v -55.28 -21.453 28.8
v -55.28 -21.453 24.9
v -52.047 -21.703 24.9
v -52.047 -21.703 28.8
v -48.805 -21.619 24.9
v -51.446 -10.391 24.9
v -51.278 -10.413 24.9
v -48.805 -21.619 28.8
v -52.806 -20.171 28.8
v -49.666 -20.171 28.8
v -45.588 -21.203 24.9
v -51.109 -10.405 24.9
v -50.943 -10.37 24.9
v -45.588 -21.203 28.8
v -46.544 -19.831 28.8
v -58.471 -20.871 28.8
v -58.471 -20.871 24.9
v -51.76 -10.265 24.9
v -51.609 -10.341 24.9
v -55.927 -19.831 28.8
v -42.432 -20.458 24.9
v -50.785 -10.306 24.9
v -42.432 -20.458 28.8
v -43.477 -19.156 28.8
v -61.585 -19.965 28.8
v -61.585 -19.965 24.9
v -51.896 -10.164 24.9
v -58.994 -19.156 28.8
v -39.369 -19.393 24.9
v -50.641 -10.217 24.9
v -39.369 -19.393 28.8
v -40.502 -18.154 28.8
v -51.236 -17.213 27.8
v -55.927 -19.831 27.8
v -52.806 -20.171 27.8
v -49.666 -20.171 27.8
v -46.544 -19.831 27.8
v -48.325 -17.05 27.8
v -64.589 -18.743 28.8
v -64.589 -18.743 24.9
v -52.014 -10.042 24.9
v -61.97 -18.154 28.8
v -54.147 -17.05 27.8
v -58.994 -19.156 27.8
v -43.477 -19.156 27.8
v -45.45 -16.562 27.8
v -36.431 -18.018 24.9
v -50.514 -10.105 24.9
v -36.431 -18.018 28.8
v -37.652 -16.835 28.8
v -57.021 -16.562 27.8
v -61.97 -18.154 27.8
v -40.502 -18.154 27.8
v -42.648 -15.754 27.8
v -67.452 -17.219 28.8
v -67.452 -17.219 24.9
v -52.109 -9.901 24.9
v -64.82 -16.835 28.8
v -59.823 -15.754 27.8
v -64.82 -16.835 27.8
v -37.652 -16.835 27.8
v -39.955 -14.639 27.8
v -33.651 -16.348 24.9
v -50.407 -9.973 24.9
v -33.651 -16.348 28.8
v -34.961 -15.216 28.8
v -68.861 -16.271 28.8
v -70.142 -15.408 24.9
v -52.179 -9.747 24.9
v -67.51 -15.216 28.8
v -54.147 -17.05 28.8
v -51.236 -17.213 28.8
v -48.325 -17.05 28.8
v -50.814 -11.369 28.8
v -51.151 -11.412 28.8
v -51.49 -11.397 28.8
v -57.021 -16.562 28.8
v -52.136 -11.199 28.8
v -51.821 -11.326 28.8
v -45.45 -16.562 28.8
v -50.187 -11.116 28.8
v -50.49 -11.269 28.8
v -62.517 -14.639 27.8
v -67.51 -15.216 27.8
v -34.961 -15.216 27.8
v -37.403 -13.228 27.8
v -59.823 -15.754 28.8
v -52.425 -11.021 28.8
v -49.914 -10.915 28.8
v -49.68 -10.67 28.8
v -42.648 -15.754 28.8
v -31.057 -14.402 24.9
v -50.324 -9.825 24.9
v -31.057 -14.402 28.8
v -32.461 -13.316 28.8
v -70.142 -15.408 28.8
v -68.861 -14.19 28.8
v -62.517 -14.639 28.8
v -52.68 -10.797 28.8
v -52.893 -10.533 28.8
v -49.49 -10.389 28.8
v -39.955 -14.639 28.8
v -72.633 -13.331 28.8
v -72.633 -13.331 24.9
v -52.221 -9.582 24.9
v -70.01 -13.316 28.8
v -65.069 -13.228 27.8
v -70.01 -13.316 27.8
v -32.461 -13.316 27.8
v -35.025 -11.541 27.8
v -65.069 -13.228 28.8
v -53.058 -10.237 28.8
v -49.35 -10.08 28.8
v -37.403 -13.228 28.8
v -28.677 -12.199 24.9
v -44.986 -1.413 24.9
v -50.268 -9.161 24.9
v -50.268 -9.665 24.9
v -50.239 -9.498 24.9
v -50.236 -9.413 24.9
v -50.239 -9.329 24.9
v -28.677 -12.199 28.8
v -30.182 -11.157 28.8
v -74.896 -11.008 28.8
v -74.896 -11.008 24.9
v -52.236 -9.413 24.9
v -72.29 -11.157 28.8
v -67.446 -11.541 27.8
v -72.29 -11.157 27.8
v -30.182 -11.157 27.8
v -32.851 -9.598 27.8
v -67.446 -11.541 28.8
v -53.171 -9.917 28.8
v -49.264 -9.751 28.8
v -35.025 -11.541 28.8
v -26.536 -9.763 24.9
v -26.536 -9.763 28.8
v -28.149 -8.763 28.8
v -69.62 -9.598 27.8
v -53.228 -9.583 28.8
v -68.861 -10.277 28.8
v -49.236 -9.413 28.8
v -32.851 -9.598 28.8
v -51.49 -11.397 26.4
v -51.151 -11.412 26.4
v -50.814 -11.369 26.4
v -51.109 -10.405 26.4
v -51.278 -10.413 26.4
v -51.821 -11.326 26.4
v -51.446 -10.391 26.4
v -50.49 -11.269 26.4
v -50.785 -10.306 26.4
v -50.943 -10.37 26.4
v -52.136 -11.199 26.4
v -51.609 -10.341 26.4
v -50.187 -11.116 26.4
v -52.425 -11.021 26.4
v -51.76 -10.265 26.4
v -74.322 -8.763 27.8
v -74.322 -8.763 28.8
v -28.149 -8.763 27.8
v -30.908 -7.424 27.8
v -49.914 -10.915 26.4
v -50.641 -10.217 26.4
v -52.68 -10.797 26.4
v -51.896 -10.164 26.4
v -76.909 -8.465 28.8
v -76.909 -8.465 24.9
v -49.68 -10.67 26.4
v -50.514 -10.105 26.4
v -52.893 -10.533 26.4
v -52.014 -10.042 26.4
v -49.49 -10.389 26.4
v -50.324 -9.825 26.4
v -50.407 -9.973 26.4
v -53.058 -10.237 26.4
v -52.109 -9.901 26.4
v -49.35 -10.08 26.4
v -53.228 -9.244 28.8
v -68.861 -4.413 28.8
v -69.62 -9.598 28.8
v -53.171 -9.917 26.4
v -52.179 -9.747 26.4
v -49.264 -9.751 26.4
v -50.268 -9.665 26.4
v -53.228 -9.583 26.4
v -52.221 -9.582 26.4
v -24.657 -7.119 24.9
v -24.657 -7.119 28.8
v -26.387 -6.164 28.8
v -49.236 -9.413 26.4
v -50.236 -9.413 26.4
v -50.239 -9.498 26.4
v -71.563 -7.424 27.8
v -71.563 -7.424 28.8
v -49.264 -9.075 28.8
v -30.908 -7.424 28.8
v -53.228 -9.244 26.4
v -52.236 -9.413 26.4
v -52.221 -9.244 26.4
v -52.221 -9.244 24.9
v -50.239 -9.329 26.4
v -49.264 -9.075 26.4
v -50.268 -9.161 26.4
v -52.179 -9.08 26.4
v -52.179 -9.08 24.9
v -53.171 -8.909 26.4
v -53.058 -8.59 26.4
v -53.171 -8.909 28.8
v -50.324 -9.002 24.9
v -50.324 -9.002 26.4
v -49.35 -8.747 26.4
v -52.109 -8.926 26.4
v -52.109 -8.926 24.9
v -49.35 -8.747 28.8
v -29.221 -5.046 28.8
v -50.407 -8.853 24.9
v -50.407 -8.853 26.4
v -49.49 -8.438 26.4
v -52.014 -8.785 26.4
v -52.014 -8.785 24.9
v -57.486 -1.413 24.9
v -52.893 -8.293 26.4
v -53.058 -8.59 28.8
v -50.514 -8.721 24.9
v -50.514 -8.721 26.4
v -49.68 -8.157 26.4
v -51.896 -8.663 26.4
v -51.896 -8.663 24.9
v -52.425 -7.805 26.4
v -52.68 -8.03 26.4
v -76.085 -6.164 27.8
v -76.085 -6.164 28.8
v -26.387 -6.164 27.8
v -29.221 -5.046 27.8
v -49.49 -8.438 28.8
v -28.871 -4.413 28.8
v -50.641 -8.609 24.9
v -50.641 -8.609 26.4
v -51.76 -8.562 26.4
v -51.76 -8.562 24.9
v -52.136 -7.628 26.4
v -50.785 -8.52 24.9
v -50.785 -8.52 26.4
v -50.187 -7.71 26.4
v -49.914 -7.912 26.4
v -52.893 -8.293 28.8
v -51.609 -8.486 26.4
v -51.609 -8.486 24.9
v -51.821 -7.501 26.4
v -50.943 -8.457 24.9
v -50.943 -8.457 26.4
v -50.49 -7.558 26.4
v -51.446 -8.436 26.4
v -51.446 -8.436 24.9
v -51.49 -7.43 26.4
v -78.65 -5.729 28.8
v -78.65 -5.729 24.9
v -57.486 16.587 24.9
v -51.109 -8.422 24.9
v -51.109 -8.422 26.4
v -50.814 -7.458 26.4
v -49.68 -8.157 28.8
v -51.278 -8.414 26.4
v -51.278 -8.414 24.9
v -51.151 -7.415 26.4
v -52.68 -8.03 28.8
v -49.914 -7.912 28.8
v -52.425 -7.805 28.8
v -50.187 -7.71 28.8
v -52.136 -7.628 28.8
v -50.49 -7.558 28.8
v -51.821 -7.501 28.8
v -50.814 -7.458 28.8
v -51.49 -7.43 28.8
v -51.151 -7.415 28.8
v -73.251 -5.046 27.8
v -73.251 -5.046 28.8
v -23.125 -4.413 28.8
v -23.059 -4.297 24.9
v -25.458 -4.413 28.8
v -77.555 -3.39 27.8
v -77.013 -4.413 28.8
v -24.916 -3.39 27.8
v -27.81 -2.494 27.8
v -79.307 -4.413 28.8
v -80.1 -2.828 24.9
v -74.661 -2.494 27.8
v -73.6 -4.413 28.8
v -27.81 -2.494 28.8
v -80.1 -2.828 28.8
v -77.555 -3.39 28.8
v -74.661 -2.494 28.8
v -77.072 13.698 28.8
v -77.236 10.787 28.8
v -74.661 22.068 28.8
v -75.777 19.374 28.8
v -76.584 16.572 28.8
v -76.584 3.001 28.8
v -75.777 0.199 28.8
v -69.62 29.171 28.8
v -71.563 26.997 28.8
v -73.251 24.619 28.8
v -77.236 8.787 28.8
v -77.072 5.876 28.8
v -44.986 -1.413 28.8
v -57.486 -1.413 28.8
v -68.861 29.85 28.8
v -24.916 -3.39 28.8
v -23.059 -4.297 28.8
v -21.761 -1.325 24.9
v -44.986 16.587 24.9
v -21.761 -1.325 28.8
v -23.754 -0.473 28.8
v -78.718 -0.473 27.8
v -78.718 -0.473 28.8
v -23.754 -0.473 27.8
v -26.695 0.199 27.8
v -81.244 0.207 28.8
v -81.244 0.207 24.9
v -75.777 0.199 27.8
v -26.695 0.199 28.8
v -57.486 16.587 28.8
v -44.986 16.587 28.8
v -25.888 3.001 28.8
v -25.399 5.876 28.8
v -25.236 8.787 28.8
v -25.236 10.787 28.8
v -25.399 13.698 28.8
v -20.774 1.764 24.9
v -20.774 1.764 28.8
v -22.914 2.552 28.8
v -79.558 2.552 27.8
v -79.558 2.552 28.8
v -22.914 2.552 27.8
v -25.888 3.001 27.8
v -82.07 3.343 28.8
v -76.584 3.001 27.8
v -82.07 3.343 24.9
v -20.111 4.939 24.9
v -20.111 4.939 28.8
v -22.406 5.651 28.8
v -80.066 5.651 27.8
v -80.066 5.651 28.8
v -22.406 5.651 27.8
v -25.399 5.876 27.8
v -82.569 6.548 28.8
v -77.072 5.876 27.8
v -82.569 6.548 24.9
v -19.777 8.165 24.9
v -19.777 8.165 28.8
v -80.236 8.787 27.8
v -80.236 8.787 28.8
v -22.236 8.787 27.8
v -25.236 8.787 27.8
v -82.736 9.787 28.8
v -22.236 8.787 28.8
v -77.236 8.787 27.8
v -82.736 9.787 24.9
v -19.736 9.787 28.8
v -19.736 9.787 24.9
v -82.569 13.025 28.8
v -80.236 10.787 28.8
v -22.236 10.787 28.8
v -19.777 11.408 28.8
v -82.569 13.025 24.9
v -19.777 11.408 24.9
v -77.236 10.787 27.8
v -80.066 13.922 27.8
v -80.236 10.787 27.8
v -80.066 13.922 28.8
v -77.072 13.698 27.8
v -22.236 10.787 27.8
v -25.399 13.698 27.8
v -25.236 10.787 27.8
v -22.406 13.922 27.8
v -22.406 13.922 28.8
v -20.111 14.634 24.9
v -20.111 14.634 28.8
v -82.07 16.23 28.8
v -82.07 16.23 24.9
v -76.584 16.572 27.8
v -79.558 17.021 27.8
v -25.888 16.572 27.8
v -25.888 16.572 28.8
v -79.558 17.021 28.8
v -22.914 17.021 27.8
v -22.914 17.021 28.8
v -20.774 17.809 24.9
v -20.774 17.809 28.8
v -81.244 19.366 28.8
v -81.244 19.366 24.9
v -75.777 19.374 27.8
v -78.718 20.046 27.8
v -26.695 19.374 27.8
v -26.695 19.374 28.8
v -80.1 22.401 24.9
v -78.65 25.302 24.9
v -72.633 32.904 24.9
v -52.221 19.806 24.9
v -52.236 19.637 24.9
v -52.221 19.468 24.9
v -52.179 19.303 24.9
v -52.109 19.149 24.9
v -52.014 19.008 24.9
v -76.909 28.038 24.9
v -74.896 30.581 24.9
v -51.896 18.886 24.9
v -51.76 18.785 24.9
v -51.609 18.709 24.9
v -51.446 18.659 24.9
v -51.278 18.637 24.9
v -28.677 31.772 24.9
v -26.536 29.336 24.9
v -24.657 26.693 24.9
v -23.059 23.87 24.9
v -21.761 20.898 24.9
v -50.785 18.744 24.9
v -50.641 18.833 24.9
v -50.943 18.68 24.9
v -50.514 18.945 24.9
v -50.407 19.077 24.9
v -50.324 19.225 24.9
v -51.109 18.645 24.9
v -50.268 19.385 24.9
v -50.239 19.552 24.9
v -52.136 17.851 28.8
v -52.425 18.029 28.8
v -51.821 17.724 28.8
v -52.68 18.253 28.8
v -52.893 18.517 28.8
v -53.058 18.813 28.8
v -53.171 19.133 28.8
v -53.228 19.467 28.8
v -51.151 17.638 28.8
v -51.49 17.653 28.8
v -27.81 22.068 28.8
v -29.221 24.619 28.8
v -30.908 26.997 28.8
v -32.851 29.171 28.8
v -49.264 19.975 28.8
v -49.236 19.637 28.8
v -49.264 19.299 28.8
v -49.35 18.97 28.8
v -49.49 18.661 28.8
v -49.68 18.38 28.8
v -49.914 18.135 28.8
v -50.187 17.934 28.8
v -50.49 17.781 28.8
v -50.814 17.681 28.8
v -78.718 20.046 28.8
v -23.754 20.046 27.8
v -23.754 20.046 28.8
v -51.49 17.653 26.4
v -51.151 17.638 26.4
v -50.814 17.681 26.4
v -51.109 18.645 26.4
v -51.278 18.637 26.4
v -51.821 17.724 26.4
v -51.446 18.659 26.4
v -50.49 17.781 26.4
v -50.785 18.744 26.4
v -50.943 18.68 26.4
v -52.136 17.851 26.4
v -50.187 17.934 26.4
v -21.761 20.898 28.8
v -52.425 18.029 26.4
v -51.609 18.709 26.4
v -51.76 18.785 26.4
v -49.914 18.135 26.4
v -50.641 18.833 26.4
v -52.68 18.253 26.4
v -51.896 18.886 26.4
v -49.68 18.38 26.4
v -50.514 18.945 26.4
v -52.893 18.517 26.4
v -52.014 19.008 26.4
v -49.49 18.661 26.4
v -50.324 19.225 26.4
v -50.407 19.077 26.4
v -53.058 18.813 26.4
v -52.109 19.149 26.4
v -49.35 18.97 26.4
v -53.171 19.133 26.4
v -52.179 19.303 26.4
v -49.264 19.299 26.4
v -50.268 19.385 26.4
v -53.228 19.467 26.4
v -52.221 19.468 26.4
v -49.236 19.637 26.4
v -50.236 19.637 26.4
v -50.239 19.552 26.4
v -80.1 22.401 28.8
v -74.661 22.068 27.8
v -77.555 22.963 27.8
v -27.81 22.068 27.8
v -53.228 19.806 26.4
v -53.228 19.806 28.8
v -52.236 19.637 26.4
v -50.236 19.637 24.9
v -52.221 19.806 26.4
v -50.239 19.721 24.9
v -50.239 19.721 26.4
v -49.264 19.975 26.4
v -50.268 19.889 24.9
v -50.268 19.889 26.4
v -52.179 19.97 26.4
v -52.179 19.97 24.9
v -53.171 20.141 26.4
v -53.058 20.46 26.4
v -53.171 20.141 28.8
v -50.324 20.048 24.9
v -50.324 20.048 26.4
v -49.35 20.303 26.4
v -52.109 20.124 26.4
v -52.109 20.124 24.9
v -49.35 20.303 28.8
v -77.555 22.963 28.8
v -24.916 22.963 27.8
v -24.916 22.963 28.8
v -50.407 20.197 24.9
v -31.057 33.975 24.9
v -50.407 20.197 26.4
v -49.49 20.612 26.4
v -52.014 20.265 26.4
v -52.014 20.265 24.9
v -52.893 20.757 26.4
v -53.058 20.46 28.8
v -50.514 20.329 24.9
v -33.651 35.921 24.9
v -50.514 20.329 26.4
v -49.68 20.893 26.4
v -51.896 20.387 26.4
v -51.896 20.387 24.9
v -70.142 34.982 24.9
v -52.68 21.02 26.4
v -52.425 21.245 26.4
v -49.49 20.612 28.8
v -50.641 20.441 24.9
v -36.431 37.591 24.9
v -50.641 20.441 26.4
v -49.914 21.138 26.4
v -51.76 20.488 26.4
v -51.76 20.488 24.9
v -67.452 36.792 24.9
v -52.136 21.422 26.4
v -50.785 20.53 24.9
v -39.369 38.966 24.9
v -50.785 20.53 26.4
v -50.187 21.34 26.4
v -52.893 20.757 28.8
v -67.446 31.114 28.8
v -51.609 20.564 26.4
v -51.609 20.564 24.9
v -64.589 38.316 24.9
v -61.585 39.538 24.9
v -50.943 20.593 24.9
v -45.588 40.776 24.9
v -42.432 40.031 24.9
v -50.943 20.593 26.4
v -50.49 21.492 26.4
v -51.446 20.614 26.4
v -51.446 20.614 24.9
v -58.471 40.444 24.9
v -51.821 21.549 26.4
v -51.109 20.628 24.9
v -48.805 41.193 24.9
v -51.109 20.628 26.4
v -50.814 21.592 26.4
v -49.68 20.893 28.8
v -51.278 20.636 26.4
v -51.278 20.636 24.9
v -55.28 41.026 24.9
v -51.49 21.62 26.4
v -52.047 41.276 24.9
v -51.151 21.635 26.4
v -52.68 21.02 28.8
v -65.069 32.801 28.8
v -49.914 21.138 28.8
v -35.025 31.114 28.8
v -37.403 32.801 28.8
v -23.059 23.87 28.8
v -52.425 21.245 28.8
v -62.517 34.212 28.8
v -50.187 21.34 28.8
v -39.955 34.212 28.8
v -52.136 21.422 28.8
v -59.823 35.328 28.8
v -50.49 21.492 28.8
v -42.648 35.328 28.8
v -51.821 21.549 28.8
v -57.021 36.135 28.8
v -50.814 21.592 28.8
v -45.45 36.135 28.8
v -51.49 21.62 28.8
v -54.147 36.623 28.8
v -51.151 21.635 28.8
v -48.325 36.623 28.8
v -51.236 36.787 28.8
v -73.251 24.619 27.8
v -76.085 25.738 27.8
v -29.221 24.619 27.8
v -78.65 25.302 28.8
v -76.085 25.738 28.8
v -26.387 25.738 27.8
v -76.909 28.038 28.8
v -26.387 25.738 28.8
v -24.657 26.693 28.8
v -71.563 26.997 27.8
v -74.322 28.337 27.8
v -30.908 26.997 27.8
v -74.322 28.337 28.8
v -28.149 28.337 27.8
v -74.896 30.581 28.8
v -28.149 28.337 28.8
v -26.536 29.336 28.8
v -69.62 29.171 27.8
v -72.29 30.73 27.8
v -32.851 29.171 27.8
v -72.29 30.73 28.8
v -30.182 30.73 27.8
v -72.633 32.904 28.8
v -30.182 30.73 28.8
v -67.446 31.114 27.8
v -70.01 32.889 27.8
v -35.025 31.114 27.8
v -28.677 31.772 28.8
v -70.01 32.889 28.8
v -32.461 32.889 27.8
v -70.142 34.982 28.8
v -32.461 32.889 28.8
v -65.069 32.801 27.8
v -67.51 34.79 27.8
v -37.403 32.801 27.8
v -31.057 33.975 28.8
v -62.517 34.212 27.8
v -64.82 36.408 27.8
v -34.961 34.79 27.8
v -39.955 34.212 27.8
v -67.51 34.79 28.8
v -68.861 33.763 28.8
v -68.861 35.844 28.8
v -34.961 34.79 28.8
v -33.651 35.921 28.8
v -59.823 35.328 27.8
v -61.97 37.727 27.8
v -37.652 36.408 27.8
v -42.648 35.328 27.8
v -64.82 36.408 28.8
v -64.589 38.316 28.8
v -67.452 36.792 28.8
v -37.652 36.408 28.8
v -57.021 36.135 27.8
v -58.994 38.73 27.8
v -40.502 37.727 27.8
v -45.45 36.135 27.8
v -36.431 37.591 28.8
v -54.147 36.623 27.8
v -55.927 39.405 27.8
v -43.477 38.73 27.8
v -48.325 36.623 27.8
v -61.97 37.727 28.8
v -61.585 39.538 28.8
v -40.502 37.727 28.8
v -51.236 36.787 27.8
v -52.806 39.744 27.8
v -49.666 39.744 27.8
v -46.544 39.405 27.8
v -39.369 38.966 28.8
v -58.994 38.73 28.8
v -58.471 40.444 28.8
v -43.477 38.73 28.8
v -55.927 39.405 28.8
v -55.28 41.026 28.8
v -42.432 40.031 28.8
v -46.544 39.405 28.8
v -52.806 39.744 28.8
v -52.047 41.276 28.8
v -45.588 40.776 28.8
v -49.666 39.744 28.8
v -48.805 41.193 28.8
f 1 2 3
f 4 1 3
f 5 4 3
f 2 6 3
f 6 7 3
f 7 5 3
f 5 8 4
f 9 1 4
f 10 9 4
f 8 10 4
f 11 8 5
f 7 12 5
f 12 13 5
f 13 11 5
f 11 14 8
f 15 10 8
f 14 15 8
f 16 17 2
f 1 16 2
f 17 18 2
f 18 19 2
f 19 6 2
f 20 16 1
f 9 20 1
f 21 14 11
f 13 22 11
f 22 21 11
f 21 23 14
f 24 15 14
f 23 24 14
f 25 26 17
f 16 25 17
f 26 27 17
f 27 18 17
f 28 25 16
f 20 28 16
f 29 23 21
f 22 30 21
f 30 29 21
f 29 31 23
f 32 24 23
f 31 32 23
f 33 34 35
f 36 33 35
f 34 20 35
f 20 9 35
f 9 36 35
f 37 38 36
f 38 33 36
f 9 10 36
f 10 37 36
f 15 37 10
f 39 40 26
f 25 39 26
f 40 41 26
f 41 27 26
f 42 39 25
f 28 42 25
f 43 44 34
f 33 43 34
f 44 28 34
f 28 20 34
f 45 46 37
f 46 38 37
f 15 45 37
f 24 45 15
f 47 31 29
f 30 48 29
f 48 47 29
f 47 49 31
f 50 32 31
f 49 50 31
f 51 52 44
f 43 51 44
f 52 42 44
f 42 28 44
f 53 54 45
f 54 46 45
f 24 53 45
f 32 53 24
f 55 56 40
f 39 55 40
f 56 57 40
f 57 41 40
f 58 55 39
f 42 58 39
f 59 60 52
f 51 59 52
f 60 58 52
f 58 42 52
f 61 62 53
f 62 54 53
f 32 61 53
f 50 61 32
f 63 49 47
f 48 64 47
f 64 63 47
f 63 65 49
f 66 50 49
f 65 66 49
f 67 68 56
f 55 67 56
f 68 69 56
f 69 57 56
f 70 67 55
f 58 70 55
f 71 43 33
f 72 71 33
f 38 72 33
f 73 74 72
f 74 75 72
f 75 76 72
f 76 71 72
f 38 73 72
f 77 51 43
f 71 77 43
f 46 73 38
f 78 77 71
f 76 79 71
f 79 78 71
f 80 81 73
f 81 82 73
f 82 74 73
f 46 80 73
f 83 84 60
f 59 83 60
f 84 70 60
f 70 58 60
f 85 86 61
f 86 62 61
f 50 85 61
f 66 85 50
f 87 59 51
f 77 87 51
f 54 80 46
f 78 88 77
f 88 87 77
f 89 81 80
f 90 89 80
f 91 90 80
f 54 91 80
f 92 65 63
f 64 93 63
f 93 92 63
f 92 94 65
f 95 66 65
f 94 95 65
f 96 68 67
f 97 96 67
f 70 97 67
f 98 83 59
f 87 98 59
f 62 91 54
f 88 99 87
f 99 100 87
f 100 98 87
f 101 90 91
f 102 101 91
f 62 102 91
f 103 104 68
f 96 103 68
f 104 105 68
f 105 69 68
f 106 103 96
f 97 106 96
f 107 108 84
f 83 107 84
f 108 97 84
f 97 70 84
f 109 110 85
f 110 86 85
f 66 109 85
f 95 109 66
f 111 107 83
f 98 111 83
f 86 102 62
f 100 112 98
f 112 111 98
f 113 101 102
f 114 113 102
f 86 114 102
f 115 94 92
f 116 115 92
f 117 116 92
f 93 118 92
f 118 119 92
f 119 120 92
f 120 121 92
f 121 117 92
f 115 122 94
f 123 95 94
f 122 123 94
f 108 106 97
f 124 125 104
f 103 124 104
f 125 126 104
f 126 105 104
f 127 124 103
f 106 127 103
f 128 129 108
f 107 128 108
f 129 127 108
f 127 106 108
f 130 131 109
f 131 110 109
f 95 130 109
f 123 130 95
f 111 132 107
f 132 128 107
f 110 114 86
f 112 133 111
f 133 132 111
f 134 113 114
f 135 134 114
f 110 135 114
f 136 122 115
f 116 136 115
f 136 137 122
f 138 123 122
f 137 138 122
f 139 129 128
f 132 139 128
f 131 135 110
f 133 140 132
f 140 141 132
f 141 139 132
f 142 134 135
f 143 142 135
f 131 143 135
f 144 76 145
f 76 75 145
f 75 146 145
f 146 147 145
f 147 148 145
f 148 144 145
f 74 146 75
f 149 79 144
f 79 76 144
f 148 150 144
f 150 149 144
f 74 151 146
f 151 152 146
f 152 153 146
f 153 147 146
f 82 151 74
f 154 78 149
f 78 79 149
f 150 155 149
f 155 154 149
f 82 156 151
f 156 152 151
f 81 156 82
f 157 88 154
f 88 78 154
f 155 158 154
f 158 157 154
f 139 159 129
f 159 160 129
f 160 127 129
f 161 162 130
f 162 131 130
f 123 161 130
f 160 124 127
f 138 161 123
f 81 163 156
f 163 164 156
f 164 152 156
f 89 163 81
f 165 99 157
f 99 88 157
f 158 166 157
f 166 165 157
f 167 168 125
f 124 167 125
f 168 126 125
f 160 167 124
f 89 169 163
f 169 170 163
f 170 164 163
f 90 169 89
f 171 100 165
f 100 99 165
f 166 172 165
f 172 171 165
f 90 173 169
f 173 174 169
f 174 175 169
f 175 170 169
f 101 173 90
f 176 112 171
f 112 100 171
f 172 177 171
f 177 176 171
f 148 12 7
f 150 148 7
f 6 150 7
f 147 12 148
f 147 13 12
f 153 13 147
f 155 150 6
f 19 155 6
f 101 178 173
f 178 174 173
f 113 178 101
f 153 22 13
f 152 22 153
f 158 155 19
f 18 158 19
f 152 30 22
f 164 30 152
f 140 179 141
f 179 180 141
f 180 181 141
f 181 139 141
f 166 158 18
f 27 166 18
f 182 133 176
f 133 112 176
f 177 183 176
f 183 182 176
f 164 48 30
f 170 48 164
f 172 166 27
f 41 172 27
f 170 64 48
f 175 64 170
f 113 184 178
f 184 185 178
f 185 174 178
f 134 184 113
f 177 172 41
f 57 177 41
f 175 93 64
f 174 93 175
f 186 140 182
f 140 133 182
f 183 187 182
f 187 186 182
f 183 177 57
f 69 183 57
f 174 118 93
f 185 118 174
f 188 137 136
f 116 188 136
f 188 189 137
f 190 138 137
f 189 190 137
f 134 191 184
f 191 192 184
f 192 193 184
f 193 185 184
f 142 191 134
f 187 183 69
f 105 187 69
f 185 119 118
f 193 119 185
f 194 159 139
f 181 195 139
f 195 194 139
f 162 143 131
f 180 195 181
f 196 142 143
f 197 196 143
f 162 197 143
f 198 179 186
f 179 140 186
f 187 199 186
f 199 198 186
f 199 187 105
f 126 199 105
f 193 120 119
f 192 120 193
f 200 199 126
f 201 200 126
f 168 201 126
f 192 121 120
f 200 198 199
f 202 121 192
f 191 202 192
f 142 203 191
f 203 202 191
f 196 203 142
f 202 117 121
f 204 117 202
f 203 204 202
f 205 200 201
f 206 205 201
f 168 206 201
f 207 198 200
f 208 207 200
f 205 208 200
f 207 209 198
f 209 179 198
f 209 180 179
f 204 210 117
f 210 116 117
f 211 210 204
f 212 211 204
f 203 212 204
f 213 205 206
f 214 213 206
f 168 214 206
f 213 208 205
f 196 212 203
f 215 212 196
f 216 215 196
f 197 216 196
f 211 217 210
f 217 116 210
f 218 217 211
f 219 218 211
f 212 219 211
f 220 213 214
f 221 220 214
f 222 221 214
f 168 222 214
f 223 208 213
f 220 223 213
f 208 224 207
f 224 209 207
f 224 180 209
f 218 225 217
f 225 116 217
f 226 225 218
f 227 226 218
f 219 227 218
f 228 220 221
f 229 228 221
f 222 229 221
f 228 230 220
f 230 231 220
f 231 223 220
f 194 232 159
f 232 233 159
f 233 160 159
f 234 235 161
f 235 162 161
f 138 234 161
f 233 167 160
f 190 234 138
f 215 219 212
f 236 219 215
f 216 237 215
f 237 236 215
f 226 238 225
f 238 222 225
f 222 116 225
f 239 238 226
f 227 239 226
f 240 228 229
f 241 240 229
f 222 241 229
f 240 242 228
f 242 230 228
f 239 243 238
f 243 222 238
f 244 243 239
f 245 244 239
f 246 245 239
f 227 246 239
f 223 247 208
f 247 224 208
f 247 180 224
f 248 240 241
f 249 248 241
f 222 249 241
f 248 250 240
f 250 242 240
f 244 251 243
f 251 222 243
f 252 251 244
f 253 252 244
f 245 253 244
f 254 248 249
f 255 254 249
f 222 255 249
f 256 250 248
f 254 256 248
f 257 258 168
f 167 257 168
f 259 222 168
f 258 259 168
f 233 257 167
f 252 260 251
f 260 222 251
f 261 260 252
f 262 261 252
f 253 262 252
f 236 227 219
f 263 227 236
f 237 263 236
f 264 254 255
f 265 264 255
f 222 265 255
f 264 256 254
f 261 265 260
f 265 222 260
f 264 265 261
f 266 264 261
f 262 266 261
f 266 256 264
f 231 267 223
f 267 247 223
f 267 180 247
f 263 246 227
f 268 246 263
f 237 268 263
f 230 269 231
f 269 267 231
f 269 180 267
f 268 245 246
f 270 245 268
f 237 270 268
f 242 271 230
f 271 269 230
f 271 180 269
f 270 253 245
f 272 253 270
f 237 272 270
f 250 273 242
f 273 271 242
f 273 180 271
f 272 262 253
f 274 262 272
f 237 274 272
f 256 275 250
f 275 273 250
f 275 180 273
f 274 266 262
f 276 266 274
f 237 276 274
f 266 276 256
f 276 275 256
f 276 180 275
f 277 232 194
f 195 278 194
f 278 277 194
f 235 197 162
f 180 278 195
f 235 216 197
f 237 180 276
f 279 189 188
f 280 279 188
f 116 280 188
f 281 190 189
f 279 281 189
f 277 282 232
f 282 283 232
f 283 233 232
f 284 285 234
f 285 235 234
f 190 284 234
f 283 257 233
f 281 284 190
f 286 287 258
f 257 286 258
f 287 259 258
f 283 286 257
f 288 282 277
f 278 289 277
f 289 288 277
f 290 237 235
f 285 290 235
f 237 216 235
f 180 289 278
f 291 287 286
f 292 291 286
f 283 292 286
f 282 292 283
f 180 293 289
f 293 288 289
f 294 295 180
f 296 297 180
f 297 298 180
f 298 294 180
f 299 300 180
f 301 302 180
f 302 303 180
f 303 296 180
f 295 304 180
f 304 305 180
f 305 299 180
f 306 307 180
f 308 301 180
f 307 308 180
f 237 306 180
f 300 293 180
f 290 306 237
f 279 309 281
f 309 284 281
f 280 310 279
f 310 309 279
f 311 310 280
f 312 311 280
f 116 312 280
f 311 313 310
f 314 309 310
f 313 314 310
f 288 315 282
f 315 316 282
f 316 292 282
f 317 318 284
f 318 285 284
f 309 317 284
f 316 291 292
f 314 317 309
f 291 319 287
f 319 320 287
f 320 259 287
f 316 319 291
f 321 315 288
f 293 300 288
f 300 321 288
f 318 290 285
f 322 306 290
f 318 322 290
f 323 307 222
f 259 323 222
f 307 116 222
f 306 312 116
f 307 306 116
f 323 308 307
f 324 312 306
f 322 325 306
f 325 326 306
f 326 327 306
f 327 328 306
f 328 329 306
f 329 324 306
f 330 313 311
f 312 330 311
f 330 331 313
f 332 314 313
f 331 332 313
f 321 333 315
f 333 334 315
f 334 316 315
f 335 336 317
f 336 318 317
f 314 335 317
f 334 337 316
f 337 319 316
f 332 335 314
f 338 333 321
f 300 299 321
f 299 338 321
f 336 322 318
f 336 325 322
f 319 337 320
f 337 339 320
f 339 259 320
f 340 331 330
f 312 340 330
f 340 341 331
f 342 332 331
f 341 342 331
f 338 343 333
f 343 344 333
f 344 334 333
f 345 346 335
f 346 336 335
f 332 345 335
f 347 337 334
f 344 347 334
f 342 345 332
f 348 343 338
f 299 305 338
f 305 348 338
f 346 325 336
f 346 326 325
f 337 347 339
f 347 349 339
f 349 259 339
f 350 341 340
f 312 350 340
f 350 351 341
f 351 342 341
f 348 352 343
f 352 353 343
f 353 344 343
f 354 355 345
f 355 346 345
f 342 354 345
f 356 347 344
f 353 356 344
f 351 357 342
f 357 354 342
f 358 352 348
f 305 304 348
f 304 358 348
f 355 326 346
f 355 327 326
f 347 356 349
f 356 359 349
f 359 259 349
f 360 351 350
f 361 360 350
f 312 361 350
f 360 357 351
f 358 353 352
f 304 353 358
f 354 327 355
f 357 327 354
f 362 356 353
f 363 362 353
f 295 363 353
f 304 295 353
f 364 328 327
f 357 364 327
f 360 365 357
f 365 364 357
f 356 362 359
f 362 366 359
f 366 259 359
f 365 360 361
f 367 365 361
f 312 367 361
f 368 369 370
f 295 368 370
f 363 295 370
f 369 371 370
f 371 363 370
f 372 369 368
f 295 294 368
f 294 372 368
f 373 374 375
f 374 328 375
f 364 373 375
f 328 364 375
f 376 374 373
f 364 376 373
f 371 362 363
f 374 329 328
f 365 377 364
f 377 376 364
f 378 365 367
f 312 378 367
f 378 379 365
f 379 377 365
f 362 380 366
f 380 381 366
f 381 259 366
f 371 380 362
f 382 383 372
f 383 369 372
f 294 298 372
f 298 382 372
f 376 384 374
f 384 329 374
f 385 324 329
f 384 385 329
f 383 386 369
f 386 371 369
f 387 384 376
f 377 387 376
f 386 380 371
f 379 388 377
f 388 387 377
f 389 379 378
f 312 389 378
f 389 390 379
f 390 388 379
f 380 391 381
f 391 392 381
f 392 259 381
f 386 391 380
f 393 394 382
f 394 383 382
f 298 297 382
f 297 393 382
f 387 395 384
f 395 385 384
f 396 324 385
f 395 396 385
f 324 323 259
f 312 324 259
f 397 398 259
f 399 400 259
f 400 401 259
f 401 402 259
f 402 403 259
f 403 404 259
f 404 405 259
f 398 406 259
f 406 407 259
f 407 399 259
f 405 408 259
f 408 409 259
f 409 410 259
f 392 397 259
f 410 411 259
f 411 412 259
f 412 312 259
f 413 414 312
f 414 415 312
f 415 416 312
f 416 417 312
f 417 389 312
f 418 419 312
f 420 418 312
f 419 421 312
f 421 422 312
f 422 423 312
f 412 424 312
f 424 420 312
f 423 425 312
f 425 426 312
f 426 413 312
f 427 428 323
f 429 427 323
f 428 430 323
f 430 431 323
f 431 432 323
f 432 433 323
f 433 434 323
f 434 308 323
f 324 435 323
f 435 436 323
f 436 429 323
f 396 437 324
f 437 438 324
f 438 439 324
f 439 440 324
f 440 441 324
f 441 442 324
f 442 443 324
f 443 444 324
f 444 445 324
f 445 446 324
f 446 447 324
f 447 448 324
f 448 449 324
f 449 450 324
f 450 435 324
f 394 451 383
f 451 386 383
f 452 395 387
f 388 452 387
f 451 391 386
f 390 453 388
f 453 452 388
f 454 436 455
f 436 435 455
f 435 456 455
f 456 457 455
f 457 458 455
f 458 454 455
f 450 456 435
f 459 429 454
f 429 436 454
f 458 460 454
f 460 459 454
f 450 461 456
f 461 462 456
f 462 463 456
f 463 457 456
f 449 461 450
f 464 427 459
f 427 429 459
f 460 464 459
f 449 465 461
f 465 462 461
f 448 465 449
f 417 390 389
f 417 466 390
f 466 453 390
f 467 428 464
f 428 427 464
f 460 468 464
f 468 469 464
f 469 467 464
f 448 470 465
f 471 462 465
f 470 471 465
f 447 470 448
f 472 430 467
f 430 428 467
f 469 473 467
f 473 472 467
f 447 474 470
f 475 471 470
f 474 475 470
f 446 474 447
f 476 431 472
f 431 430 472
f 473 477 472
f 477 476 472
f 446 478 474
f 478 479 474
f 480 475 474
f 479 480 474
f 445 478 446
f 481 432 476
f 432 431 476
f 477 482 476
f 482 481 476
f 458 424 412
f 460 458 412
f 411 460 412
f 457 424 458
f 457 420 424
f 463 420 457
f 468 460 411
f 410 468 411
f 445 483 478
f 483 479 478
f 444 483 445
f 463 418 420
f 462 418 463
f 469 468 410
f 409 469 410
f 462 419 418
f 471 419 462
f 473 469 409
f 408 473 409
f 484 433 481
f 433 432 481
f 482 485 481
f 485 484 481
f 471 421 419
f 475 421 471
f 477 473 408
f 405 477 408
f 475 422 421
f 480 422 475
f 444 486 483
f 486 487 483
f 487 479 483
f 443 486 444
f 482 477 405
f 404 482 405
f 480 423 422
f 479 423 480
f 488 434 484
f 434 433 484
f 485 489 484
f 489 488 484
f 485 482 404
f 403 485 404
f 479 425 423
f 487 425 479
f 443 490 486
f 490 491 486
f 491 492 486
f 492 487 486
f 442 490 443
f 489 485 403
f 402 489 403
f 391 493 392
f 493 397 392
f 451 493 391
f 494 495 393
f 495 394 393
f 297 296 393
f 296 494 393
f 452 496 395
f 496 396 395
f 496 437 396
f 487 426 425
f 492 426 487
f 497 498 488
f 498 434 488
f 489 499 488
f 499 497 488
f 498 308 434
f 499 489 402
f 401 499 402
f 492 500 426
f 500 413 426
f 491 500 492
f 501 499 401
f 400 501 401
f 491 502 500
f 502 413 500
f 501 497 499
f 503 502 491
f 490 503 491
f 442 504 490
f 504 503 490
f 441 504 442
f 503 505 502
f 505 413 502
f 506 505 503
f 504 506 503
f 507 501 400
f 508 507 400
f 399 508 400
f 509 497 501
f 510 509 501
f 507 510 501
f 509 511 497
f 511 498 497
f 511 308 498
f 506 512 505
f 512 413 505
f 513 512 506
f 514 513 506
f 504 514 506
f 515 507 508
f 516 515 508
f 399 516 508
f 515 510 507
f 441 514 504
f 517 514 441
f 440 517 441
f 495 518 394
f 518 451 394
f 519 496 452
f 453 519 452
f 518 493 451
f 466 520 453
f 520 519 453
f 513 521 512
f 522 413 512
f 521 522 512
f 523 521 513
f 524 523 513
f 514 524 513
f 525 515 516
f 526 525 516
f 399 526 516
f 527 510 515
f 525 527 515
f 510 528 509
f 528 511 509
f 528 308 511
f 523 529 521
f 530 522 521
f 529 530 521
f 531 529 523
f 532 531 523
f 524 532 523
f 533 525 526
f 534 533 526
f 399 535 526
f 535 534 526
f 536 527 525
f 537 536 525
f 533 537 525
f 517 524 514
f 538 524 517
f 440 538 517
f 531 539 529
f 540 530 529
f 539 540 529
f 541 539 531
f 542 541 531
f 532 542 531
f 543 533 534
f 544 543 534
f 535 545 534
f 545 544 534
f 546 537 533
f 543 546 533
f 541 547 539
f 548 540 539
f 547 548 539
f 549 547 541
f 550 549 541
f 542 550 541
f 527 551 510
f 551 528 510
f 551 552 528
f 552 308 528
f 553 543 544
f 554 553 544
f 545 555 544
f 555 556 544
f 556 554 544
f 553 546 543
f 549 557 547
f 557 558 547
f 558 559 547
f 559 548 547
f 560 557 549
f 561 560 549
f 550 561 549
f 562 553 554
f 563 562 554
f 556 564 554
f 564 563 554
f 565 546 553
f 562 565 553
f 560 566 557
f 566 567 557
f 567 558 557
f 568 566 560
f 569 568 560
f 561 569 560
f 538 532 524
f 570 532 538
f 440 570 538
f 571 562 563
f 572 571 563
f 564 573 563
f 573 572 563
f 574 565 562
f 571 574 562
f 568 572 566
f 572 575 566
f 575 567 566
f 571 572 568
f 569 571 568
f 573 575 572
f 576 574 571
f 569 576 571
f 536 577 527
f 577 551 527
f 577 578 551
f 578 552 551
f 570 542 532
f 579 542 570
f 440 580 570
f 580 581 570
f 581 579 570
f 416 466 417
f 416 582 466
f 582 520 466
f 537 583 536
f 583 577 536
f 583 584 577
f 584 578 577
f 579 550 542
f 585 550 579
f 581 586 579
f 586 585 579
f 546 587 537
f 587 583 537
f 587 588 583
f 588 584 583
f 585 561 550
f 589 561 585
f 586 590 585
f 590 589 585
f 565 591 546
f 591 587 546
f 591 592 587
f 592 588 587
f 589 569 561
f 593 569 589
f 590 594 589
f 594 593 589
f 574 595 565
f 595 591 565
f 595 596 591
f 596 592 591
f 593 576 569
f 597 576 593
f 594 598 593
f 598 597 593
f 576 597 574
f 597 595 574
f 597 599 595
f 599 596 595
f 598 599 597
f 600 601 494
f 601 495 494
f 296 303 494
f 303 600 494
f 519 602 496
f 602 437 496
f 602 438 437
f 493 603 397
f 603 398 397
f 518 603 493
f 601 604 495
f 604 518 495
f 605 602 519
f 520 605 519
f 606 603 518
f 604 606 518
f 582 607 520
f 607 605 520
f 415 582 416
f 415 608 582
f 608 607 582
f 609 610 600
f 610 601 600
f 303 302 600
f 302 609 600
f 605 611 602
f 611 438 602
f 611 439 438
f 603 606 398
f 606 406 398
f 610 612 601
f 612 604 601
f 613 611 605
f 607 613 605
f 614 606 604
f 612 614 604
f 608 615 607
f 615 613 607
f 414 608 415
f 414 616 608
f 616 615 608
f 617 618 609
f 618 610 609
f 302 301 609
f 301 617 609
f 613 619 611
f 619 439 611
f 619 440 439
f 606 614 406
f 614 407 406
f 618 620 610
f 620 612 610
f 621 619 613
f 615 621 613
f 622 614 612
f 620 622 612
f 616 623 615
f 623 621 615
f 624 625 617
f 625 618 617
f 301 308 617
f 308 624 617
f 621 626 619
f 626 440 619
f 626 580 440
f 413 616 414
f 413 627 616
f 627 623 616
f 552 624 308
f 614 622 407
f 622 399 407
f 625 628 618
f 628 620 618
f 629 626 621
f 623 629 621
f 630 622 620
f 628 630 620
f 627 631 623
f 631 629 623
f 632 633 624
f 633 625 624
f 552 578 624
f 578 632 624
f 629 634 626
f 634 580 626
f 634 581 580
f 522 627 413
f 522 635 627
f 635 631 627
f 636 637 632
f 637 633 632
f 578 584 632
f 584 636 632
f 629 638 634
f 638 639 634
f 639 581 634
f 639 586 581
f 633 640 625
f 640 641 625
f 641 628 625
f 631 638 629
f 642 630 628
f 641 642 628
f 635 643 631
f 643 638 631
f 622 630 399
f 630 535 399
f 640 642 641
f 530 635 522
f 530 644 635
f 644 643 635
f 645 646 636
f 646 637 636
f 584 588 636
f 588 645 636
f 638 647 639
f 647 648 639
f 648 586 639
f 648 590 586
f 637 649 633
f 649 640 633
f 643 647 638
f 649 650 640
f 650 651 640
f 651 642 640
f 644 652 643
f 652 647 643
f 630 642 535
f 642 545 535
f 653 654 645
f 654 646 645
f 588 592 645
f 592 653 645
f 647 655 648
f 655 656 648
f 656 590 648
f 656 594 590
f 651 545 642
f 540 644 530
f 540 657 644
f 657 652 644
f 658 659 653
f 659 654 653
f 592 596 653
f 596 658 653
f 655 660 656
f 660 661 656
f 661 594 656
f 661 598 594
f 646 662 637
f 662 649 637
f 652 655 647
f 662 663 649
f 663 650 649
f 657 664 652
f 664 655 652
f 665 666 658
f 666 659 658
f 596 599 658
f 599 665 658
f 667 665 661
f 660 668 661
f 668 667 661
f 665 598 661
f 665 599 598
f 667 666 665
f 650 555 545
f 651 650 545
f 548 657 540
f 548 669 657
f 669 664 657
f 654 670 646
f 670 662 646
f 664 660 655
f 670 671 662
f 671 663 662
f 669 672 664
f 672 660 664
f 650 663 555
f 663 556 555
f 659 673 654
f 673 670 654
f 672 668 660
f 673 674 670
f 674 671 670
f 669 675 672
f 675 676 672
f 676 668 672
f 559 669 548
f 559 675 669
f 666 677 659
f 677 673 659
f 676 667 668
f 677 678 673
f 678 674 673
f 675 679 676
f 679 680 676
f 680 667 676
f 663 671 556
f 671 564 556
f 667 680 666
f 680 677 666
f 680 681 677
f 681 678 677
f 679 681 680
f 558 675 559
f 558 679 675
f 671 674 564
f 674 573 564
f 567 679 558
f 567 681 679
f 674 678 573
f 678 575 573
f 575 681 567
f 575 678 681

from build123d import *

# Parameters (mm, degrees)
CROQUIS1_R              = 31.5
SALIENTE_EXTRUIR1_DEPTH = 2.4
CROQUIS2_W              = 16.1
CROQUIS2_H              = 36.6
CROQUIS2_W_2            = 12.5
CROQUIS2_H_2            = 33
SALIENTE_EXTRUIR2_DEPTH = 22.5
CROQUIS5_W              = 16.1
CROQUIS5_H              = 36.6
CORTAR_EXTRUIR2_DEPTH   = 9
CROQUIS6_R              = 1.5
CORTAR_EXTRUIR3_DEPTH   = 2.4
CROQUIS7_W              = 12.5
CROQUIS7_H              = 9
SALIENTE_EXTRUIR3_DEPTH = 33
CROQUIS8_R              = 1
CORTAR_EXTRUIR5_DEPTH   = 9
SALIENTE_EXTRUIR4_DEPTH = 12.5
CROQUIS10_W             = 4
CROQUIS10_H             = 2
CORTAR_EXTRUIR6_DEPTH   = 9
CROQUIS11_R             = 31.5
CROQUIS11_W             = 12.5
CROQUIS11_H             = 18
SALIENTE_EXTRUIR5_DEPTH = 3.9
CORTAR_EXTRUIR7_START   = 7
CROQUIS12_R             = 1
CORTAR_EXTRUIR7_DEPTH   = 3.9
CROQUIS13_R             = 2
CORTAR_EXTRUIR8_DEPTH   = 2.4
CROQUIS14_R             = 31.5
CORTAR_EXTRUIR9_DEPTH   = 24.9
CROQUIS15_R             = 31.5
CROQUIS15_R_2           = 2
CROQUIS15_W             = 12.5
CROQUIS15_H             = 18
SALIENTE_EXTRUIR6_DEPTH = 1
CORTAR_EXTRUIR10_DEPTH  = 2
CROQUIS17_R             = 31.5
CORTAR_EXTRUIR11_DEPTH  = 1


with BuildPart() as part:
    # Croquis1 → Saliente-Extruir1 (new body)
    with BuildSketch(Plane.XY):
        with Locations((-51.235671923, 9.786589019)):
            Circle(CROQUIS1_R)
    extrude(amount=SALIENTE_EXTRUIR1_DEPTH)

    # Croquis2 → Saliente-Extruir2 (add)
    with BuildSketch(Plane.XY.offset(2.4)):
        with Locations((-51.235671923, 5.086589019)):
            Rectangle(CROQUIS2_W, CROQUIS2_H)
        with Locations((-51.235671923, 5.086589019)):
            Rectangle(CROQUIS2_W_2, CROQUIS2_H_2, mode=Mode.SUBTRACT)
    extrude(amount=SALIENTE_EXTRUIR2_DEPTH)

    # Croquis5 → Cortar-Extruir2 (cut)
    with BuildSketch(Plane.XY.offset(2.4)):
        with Locations((-51.235671923, 5.086589019)):
            Rectangle(CROQUIS5_W, CROQUIS5_H)
    extrude(amount=-CORTAR_EXTRUIR2_DEPTH, mode=Mode.SUBTRACT)


with BuildPart() as cortar_extruir2_piece_1:
    # of the separate pieces the step leaves, piece 1, a body of its own (cortar_extruir2_pieces)
    add(part.part.solids().sort_by_distance((-19.735671923, 9.786589019, 0))[0])

    # Croquis6 → Cortar-Extruir3 (cut)
    with BuildSketch(Plane(origin=(0, 0, 0), x_dir=(-1, 0, 0), z_dir=(0, 0, -1))):
        with Locations((34.618662565, 26.403598377)):
            Circle(CROQUIS6_R)
        with Locations((67.85268128, 26.403598377)):
            Circle(CROQUIS6_R)
        with Locations((67.85268128, -6.830420339)):
            Circle(CROQUIS6_R)
        with Locations((34.618662565, -6.830420339)):
            Circle(CROQUIS6_R)
        Polygon((51.235671923, 23.386589019), (53.235671923, 23.386589019), (53.235671923, 43.386589019), (49.235671923, 43.386589019), (49.235671923, 23.386589019), align=None)
    extrude(amount=-CORTAR_EXTRUIR3_DEPTH, mode=Mode.SUBTRACT)


with BuildPart() as cortar_extruir2_piece_2:
    # of the separate pieces the step leaves, piece 2, a body of its own (cortar_extruir2_pieces)
    add(part.part.solids().sort_by_distance((-59.285671923, -13.213410981, 24.9))[0])

    # Croquis7 → Saliente-Extruir3 (add)
    with BuildSketch(Plane.XZ.offset(-21.586589019)):
        with Locations((-51.235671923, 13.4)):
            Rectangle(CROQUIS7_W, CROQUIS7_H)
    extrude(amount=SALIENTE_EXTRUIR3_DEPTH)

    # Croquis8 → Cortar-Extruir5 (cut)
    with BuildSketch(Plane.XY.offset(17.9)):
        with Locations((-51.235671923, -9.413410981)):
            Circle(CROQUIS8_R)
        with Locations((-51.235671923, 19.636589019)):
            Circle(CROQUIS8_R)
        Polygon((-44.985671923, -6.413410981), (-57.485671923, -6.413410981), (-57.485671923, 16.586589019), (-53.235671923, 16.586589019), (-53.235671923, 18.586589019), (-49.235671923, 18.586589019), (-49.235671923, 16.586589019), (-44.985671923, 16.586589019), align=None)
    extrude(amount=-CORTAR_EXTRUIR5_DEPTH, mode=Mode.SUBTRACT)

    # Croquis9 → Saliente-Extruir4 (add)
    with BuildSketch(Plane.ZY.offset(44.985671923)):
        Polygon((8.9, -6.413410981), (3.9, -11.413410981), (8.9, -11.413410981), align=None)
        Polygon((8.9, 16.586589019), (3.9, 21.586589019), (8.9, 21.586589019), align=None)
    extrude(amount=SALIENTE_EXTRUIR4_DEPTH)

    # Croquis10 → Cortar-Extruir6 (cut)
    with BuildSketch(Plane.XY.offset(8.9)):
        with Locations((-51.235671923, 17.586589019)):
            Rectangle(CROQUIS10_W, CROQUIS10_H)
    extrude(amount=-CORTAR_EXTRUIR6_DEPTH, mode=Mode.SUBTRACT)

    # Croquis11 → Saliente-Extruir5 (add)
    with BuildSketch(Plane.XY.offset(24.9)):
        with Locations((-51.235671923, 9.786589019)):
            Circle(CROQUIS11_R)
        with Locations((-51.235671923, 7.586589019)):
            Rectangle(CROQUIS11_W, CROQUIS11_H, mode=Mode.SUBTRACT)
    extrude(amount=SALIENTE_EXTRUIR5_DEPTH)

    # Croquis12 → Cortar-Extruir7 (cut)
    with BuildSketch(Plane.XY.offset(17.9).offset(CORTAR_EXTRUIR7_START)):
        with Locations((-51.235671923, 19.636589019)):
            Circle(CROQUIS12_R)
        with Locations((-51.235671923, -9.413410981)):
            Circle(CROQUIS12_R)
    extrude(amount=CORTAR_EXTRUIR7_DEPTH, mode=Mode.SUBTRACT)

    # Croquis13 → Cortar-Extruir8 (cut)
    with BuildSketch(Plane.XY.offset(28.8)):
        with Locations((-51.235671923, 19.636589019)):
            Circle(CROQUIS13_R)
        with Locations((-51.235671923, -9.413410981)):
            Circle(CROQUIS13_R)
    extrude(amount=-CORTAR_EXTRUIR8_DEPTH, mode=Mode.SUBTRACT)


with BuildPart() as cortar_extruir9_tool:
    # Croquis14 → Cortar-Extruir9 (new body)
    with BuildSketch(Plane(origin=(0, 0, 0), x_dir=(-1, 0, 0), z_dir=(0, 0, -1))):
        with Locations(Location((51.235671923, 9.786589019, 0), (0, 0, 180))):
            Circle(CROQUIS14_R)
    extrude(amount=-CORTAR_EXTRUIR9_DEPTH)


with BuildPart() as cortar_extruir2_piece_1_1:
    add(cortar_extruir2_piece_1.part)

    # Cortar-Extruir9: cut by cortar_extruir9_tool
    add(cortar_extruir9_tool.part, mode=Mode.SUBTRACT)


with BuildPart() as cortar_extruir2_piece_2_1:
    add(cortar_extruir2_piece_2.part)

    # Cortar-Extruir9: cut by cortar_extruir9_tool
    add(cortar_extruir9_tool.part, mode=Mode.SUBTRACT)

    # Croquis15 → Saliente-Extruir6 (add)
    with BuildSketch(Plane.XY.offset(28.8)):
        with Locations((-51.235671923, 9.786589019)):
            Circle(CROQUIS15_R)
        with Locations((-51.235671923, 19.636589019)):
            Circle(CROQUIS15_R_2, mode=Mode.SUBTRACT)
        with Locations((-51.235671923, -9.413410981)):
            Circle(CROQUIS15_R_2, mode=Mode.SUBTRACT)
        with Locations((-51.235671923, 7.586589019)):
            Rectangle(CROQUIS15_W, CROQUIS15_H, mode=Mode.SUBTRACT)
    extrude(amount=SALIENTE_EXTRUIR6_DEPTH)

    # Croquis16 → Cortar-Extruir10 (cut)
    with BuildSketch(Plane.XY.offset(29.8)):
        with BuildLine():
            Line((-22.235671923, 8.786589019), (-25.235671923, 8.786589019))
            ThreePointArc((-25.235671923, 8.786589019), (-51.235671923, -17.213410981), (-77.235671923, 8.786589019))
            Line((-77.235671923, 8.786589019), (-80.235671923, 8.786589019))
            ThreePointArc((-80.235671923, 8.786589019), (-51.235671923, -20.213410981), (-22.235671923, 8.786589019))
        make_face()
        with BuildLine():
            Line((-22.235671923, 10.786589019), (-25.235671923, 10.786589019))
            ThreePointArc((-25.235671923, 10.786589019), (-51.235671923, 36.786589019), (-77.235671923, 10.786589019))
            Line((-77.235671923, 10.786589019), (-80.235671923, 10.786589019))
            ThreePointArc((-80.235671923, 10.786589019), (-51.235671923, 39.786589019), (-22.235671923, 10.786589019))
        make_face()
    extrude(amount=-CORTAR_EXTRUIR10_DEPTH, mode=Mode.SUBTRACT)

    # Croquis17 → Cortar-Extruir11 (cut)
    with BuildSketch(Plane.XY.offset(29.8)):
        with Locations((-51.235671923, 9.786589019)):
            Circle(CROQUIS17_R)
    extrude(amount=-CORTAR_EXTRUIR11_DEPTH, mode=Mode.SUBTRACT)


solid = cortar_extruir2_piece_2_1.part
